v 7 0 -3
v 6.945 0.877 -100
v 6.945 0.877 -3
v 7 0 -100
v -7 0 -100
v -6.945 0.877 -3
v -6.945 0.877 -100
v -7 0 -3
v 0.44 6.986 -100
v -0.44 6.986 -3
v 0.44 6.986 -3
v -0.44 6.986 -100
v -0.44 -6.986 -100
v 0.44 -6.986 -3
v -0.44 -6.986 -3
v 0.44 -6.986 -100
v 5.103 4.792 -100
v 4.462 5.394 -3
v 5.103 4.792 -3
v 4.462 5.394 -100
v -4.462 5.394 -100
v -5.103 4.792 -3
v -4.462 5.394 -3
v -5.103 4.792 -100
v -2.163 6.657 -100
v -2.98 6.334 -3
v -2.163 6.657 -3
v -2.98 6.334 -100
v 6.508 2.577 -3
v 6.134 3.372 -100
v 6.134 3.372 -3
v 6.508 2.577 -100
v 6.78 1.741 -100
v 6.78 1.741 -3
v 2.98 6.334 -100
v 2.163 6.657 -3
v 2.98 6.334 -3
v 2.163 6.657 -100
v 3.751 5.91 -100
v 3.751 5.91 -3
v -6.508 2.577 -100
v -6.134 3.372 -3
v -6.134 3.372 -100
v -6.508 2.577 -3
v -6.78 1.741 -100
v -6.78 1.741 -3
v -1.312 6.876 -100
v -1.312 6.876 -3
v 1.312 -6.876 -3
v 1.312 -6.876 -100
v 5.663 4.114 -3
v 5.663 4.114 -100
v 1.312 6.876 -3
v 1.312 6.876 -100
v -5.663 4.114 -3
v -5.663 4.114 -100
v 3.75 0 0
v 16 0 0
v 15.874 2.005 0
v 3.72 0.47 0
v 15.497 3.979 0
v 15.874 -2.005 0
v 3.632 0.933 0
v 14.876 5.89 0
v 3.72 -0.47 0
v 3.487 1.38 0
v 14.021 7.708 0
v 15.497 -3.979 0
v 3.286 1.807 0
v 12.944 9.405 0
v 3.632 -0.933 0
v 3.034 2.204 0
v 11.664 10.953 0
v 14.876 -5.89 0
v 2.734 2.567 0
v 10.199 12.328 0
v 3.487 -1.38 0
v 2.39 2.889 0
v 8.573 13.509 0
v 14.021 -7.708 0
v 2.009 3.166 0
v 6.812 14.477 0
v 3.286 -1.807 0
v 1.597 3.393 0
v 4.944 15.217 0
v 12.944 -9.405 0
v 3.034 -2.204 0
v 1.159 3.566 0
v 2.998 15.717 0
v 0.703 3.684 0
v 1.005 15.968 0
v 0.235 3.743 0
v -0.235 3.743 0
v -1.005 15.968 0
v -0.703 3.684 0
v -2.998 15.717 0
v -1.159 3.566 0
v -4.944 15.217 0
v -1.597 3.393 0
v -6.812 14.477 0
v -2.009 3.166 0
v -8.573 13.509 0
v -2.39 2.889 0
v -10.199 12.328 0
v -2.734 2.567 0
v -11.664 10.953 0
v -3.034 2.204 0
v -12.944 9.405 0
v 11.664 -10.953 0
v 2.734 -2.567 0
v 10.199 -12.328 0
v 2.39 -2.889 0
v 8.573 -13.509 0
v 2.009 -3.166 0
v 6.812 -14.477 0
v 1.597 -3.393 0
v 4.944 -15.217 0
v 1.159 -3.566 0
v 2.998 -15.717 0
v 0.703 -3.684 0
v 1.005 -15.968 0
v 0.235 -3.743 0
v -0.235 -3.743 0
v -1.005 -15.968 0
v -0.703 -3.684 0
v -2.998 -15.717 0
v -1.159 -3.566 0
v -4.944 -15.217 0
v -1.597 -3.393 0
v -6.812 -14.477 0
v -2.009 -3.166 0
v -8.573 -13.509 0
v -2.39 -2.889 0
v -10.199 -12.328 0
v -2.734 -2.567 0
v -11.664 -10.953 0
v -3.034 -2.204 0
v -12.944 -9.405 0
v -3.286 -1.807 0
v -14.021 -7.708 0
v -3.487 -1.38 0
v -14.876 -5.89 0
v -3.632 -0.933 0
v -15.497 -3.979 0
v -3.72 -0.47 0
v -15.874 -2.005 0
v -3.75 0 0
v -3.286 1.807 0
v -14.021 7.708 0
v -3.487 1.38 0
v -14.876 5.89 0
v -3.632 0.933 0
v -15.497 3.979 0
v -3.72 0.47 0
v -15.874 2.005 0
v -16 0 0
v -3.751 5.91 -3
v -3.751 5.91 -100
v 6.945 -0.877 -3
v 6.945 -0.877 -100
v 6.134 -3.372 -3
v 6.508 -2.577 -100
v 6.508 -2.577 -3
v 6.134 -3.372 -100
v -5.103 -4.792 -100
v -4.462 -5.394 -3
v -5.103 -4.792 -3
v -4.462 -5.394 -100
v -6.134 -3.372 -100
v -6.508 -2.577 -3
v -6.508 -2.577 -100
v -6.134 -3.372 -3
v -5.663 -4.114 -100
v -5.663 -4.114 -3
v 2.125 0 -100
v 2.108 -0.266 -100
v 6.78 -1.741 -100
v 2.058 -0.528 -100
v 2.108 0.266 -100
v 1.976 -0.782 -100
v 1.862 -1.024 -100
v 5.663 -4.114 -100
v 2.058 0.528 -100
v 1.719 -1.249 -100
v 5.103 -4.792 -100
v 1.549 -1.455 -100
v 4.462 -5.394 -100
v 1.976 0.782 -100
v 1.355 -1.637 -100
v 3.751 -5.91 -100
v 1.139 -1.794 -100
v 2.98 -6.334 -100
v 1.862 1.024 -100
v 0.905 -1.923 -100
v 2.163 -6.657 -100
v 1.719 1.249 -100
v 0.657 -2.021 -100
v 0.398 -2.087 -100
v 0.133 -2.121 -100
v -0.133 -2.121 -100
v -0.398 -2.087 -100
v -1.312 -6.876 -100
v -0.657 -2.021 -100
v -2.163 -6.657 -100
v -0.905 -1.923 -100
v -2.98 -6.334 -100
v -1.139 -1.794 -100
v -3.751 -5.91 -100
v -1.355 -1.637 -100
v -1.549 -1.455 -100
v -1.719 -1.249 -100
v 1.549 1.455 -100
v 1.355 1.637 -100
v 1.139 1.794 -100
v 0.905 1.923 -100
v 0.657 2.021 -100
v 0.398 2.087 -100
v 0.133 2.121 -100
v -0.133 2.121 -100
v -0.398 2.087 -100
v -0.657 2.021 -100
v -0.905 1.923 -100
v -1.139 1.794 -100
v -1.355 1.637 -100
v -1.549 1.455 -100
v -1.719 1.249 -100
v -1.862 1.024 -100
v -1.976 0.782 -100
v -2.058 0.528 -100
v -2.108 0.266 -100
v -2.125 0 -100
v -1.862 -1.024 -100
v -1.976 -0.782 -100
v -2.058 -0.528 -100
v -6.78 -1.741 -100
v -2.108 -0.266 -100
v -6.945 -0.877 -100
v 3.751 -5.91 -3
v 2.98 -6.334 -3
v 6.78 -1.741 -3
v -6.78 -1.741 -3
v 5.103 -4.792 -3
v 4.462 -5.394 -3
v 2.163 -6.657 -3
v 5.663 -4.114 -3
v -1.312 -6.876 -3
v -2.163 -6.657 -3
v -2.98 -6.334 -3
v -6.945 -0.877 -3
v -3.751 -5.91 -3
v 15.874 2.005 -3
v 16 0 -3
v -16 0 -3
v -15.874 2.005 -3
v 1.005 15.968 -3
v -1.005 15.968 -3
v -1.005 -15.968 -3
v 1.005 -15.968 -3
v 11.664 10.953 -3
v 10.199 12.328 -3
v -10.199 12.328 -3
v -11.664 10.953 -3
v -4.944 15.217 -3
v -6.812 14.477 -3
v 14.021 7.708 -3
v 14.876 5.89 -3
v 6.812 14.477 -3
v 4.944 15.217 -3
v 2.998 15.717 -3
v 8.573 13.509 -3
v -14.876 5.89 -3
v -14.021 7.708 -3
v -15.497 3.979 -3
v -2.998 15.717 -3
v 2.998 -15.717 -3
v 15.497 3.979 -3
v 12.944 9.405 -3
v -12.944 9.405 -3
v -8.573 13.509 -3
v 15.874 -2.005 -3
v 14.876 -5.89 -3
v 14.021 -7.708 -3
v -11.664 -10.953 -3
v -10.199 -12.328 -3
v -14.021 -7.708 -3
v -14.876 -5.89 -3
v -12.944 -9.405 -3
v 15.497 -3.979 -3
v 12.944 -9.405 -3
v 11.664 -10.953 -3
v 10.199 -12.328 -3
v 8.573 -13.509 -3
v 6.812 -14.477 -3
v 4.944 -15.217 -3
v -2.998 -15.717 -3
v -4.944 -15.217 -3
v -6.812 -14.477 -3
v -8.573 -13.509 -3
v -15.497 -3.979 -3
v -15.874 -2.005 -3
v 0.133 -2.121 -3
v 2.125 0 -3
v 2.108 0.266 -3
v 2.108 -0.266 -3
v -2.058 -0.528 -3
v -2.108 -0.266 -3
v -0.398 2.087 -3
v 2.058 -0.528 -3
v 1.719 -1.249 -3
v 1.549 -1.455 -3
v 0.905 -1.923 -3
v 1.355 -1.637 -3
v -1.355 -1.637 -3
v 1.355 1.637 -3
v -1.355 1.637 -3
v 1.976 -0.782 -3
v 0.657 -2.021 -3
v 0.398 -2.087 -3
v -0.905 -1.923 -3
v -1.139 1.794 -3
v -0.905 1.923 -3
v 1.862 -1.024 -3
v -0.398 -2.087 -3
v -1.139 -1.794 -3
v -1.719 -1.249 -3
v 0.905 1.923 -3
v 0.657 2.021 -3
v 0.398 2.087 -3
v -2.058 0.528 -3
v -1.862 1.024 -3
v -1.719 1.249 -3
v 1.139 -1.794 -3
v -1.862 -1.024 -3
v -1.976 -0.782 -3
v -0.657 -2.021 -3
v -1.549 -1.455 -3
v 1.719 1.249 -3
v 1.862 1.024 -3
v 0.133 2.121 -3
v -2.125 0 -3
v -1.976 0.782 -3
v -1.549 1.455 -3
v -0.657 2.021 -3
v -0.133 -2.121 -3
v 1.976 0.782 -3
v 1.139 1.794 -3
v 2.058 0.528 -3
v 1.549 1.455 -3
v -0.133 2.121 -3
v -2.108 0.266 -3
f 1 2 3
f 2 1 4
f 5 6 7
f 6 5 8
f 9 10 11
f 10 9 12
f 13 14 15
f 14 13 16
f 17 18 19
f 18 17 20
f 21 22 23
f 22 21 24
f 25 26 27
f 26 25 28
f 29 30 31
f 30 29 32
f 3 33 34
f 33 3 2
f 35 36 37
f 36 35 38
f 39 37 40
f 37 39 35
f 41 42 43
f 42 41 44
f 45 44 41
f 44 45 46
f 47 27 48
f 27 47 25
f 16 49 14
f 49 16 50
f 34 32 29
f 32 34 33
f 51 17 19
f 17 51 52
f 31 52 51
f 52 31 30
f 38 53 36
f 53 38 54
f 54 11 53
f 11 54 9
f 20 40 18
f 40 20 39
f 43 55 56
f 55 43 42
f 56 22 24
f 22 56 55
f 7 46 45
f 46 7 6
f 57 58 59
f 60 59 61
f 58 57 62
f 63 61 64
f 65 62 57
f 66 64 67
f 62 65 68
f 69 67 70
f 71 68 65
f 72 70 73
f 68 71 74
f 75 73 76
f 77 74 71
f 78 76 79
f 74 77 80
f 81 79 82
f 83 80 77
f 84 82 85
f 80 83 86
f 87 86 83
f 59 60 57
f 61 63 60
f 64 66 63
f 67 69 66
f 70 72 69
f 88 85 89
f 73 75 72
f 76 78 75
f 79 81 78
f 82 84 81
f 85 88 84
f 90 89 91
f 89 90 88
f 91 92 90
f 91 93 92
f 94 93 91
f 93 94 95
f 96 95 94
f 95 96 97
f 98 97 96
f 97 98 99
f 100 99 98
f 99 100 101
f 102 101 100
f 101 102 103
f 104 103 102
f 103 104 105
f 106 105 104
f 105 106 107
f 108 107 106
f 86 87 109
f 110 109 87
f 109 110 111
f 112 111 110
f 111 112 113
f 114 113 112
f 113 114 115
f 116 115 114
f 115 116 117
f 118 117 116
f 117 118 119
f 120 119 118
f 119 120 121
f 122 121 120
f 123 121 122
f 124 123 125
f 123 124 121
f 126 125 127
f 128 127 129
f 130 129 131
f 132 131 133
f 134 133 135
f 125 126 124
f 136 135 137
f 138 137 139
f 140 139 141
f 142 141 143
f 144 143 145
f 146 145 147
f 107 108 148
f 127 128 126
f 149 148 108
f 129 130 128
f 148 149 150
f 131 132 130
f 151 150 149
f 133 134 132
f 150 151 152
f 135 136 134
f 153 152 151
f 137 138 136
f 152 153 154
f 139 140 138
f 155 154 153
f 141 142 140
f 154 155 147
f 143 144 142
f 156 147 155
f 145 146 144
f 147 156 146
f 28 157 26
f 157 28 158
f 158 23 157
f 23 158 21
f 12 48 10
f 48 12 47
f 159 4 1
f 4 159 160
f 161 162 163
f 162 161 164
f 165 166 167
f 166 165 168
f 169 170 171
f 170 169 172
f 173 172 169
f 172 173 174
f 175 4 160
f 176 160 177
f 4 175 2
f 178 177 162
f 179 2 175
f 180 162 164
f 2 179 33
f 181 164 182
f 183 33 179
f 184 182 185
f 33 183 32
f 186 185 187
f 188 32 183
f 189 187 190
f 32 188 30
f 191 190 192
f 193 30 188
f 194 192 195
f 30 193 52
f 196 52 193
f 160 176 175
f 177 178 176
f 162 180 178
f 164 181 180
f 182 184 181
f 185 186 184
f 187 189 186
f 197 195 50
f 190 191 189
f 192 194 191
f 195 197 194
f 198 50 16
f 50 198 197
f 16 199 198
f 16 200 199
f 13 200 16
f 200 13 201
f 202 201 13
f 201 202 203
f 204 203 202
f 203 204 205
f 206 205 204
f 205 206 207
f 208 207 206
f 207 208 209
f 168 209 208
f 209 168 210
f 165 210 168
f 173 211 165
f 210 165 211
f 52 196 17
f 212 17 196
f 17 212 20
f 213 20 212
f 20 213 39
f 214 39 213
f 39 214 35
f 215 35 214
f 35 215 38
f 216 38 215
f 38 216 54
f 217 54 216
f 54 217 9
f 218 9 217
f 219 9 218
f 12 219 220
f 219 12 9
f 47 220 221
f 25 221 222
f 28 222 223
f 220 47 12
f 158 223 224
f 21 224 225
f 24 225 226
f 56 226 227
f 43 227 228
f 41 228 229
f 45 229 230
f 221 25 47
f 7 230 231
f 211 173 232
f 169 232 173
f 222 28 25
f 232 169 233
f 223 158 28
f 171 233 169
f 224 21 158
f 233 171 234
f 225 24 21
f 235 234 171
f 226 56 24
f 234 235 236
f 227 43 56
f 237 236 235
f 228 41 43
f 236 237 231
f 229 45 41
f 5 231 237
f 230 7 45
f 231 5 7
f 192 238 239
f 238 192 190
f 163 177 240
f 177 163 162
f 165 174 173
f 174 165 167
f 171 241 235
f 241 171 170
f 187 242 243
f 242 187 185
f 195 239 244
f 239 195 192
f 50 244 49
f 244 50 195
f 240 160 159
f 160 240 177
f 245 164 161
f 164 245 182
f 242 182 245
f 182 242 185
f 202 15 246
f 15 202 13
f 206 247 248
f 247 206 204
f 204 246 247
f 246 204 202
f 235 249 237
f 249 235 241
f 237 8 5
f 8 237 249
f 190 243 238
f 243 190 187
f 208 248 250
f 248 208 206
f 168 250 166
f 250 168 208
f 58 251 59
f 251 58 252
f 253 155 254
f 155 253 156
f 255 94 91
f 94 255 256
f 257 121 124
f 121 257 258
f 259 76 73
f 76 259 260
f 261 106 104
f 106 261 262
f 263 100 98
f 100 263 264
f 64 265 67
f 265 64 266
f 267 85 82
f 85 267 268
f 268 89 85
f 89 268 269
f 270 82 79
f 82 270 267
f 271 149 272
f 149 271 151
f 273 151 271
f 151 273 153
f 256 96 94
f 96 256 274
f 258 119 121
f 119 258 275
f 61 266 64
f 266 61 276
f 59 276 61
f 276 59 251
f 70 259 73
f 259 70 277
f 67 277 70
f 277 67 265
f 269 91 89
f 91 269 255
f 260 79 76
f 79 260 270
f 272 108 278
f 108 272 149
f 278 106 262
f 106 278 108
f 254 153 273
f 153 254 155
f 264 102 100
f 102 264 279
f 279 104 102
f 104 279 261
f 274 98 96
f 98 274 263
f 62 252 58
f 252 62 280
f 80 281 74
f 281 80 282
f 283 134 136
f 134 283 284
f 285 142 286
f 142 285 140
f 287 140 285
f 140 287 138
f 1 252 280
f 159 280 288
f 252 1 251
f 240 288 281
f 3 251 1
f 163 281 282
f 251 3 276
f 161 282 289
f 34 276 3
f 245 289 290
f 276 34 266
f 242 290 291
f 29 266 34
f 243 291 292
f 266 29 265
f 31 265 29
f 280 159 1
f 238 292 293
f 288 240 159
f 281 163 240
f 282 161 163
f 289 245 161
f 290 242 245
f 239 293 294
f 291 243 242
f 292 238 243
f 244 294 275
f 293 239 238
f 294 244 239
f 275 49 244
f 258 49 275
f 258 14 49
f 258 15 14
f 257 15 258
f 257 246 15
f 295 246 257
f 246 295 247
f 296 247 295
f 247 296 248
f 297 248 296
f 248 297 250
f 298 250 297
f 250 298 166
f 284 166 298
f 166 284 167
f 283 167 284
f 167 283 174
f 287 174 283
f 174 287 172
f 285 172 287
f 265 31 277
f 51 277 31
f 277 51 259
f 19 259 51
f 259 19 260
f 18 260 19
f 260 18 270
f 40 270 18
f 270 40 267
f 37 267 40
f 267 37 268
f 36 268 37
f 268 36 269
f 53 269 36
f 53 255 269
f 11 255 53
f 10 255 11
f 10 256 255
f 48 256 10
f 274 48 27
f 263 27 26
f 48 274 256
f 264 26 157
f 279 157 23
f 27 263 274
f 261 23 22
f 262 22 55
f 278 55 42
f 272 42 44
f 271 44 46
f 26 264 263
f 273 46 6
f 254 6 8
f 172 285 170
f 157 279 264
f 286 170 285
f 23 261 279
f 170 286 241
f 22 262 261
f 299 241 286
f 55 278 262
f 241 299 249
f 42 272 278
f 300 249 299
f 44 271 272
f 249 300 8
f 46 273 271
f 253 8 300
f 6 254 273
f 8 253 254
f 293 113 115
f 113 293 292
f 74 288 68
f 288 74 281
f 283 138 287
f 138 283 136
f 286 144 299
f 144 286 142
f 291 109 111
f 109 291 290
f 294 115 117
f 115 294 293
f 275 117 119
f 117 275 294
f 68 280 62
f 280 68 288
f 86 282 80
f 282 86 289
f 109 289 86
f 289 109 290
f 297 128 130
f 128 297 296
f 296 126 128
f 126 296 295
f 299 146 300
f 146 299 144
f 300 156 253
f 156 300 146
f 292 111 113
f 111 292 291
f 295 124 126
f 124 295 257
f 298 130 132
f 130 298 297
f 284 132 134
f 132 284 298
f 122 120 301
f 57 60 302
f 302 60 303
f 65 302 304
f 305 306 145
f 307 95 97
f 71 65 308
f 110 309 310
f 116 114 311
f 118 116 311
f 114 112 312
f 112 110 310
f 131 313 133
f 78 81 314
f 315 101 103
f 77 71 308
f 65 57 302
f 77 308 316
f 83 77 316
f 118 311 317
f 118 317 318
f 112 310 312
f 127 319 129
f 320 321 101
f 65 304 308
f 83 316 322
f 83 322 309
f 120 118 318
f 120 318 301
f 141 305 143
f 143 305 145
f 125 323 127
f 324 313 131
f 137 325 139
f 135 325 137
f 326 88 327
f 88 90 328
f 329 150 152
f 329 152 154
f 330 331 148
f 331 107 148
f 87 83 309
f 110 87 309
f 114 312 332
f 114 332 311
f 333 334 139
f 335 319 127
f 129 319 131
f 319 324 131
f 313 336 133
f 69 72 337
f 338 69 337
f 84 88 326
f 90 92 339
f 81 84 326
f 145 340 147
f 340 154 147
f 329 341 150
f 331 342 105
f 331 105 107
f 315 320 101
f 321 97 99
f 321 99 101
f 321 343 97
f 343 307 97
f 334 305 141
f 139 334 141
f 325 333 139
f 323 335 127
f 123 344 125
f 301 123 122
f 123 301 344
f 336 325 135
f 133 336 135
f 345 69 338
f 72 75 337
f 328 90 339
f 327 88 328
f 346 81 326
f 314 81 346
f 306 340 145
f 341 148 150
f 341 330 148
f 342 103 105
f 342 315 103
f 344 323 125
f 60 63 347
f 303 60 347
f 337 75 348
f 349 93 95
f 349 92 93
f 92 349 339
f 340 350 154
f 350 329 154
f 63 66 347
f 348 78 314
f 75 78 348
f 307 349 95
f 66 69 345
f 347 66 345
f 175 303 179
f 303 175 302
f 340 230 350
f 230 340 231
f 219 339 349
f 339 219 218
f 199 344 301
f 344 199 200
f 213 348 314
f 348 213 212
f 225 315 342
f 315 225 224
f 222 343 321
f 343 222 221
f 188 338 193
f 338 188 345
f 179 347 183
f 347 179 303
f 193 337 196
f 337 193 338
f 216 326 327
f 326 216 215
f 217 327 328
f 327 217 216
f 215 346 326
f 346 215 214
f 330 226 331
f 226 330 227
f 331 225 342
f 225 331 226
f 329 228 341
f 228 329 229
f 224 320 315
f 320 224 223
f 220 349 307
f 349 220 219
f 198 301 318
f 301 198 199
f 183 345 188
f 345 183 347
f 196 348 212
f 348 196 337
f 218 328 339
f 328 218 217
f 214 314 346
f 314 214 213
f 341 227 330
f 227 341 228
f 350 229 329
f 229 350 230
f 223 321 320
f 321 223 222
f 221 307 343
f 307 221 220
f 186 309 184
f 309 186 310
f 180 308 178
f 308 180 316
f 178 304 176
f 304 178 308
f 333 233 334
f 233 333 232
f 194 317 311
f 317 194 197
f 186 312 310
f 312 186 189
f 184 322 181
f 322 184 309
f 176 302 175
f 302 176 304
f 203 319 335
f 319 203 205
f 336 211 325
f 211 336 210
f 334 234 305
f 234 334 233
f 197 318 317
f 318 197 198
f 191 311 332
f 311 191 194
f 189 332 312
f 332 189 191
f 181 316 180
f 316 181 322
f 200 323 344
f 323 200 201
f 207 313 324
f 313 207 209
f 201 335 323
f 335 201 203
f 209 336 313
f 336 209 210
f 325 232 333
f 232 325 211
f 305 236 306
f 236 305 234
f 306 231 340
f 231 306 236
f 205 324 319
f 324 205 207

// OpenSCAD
$fn = 50;


difference() {
	union() {
		translate(v = [0, 0, -100.0000000000]) {
			cylinder(h = 100, r = 7.0000000000);
		}
		translate(v = [0, 0, -3.0000000000]) {
			cylinder(h = 3, r = 16.0000000000);
		}
	}
	union() {
		translate(v = [0, 0, 0]) {
			rotate(a = [0, 0, 0]) {
				difference() {
					union() {
						#translate(v = [0, 0, -100.0000000000]) {
							cylinder(h = 100, r = 2.0000000000);
						}
						#translate(v = [0, 0, -3]) {
							cylinder(h = 3, r = 7.0000000000, r1 = 2.1250000000, r2 = 3.7500000000);
						}
						#translate(v = [0, 0, -100.0000000000]) {
							cylinder(h = 100, r = 2.1250000000);
						}
						#translate(v = [0, 0, -100.0000000000]) {
							cylinder(h = 100, r = 2.0000000000);
						}
					}
					union();
				}
			}
		}
	}
}
